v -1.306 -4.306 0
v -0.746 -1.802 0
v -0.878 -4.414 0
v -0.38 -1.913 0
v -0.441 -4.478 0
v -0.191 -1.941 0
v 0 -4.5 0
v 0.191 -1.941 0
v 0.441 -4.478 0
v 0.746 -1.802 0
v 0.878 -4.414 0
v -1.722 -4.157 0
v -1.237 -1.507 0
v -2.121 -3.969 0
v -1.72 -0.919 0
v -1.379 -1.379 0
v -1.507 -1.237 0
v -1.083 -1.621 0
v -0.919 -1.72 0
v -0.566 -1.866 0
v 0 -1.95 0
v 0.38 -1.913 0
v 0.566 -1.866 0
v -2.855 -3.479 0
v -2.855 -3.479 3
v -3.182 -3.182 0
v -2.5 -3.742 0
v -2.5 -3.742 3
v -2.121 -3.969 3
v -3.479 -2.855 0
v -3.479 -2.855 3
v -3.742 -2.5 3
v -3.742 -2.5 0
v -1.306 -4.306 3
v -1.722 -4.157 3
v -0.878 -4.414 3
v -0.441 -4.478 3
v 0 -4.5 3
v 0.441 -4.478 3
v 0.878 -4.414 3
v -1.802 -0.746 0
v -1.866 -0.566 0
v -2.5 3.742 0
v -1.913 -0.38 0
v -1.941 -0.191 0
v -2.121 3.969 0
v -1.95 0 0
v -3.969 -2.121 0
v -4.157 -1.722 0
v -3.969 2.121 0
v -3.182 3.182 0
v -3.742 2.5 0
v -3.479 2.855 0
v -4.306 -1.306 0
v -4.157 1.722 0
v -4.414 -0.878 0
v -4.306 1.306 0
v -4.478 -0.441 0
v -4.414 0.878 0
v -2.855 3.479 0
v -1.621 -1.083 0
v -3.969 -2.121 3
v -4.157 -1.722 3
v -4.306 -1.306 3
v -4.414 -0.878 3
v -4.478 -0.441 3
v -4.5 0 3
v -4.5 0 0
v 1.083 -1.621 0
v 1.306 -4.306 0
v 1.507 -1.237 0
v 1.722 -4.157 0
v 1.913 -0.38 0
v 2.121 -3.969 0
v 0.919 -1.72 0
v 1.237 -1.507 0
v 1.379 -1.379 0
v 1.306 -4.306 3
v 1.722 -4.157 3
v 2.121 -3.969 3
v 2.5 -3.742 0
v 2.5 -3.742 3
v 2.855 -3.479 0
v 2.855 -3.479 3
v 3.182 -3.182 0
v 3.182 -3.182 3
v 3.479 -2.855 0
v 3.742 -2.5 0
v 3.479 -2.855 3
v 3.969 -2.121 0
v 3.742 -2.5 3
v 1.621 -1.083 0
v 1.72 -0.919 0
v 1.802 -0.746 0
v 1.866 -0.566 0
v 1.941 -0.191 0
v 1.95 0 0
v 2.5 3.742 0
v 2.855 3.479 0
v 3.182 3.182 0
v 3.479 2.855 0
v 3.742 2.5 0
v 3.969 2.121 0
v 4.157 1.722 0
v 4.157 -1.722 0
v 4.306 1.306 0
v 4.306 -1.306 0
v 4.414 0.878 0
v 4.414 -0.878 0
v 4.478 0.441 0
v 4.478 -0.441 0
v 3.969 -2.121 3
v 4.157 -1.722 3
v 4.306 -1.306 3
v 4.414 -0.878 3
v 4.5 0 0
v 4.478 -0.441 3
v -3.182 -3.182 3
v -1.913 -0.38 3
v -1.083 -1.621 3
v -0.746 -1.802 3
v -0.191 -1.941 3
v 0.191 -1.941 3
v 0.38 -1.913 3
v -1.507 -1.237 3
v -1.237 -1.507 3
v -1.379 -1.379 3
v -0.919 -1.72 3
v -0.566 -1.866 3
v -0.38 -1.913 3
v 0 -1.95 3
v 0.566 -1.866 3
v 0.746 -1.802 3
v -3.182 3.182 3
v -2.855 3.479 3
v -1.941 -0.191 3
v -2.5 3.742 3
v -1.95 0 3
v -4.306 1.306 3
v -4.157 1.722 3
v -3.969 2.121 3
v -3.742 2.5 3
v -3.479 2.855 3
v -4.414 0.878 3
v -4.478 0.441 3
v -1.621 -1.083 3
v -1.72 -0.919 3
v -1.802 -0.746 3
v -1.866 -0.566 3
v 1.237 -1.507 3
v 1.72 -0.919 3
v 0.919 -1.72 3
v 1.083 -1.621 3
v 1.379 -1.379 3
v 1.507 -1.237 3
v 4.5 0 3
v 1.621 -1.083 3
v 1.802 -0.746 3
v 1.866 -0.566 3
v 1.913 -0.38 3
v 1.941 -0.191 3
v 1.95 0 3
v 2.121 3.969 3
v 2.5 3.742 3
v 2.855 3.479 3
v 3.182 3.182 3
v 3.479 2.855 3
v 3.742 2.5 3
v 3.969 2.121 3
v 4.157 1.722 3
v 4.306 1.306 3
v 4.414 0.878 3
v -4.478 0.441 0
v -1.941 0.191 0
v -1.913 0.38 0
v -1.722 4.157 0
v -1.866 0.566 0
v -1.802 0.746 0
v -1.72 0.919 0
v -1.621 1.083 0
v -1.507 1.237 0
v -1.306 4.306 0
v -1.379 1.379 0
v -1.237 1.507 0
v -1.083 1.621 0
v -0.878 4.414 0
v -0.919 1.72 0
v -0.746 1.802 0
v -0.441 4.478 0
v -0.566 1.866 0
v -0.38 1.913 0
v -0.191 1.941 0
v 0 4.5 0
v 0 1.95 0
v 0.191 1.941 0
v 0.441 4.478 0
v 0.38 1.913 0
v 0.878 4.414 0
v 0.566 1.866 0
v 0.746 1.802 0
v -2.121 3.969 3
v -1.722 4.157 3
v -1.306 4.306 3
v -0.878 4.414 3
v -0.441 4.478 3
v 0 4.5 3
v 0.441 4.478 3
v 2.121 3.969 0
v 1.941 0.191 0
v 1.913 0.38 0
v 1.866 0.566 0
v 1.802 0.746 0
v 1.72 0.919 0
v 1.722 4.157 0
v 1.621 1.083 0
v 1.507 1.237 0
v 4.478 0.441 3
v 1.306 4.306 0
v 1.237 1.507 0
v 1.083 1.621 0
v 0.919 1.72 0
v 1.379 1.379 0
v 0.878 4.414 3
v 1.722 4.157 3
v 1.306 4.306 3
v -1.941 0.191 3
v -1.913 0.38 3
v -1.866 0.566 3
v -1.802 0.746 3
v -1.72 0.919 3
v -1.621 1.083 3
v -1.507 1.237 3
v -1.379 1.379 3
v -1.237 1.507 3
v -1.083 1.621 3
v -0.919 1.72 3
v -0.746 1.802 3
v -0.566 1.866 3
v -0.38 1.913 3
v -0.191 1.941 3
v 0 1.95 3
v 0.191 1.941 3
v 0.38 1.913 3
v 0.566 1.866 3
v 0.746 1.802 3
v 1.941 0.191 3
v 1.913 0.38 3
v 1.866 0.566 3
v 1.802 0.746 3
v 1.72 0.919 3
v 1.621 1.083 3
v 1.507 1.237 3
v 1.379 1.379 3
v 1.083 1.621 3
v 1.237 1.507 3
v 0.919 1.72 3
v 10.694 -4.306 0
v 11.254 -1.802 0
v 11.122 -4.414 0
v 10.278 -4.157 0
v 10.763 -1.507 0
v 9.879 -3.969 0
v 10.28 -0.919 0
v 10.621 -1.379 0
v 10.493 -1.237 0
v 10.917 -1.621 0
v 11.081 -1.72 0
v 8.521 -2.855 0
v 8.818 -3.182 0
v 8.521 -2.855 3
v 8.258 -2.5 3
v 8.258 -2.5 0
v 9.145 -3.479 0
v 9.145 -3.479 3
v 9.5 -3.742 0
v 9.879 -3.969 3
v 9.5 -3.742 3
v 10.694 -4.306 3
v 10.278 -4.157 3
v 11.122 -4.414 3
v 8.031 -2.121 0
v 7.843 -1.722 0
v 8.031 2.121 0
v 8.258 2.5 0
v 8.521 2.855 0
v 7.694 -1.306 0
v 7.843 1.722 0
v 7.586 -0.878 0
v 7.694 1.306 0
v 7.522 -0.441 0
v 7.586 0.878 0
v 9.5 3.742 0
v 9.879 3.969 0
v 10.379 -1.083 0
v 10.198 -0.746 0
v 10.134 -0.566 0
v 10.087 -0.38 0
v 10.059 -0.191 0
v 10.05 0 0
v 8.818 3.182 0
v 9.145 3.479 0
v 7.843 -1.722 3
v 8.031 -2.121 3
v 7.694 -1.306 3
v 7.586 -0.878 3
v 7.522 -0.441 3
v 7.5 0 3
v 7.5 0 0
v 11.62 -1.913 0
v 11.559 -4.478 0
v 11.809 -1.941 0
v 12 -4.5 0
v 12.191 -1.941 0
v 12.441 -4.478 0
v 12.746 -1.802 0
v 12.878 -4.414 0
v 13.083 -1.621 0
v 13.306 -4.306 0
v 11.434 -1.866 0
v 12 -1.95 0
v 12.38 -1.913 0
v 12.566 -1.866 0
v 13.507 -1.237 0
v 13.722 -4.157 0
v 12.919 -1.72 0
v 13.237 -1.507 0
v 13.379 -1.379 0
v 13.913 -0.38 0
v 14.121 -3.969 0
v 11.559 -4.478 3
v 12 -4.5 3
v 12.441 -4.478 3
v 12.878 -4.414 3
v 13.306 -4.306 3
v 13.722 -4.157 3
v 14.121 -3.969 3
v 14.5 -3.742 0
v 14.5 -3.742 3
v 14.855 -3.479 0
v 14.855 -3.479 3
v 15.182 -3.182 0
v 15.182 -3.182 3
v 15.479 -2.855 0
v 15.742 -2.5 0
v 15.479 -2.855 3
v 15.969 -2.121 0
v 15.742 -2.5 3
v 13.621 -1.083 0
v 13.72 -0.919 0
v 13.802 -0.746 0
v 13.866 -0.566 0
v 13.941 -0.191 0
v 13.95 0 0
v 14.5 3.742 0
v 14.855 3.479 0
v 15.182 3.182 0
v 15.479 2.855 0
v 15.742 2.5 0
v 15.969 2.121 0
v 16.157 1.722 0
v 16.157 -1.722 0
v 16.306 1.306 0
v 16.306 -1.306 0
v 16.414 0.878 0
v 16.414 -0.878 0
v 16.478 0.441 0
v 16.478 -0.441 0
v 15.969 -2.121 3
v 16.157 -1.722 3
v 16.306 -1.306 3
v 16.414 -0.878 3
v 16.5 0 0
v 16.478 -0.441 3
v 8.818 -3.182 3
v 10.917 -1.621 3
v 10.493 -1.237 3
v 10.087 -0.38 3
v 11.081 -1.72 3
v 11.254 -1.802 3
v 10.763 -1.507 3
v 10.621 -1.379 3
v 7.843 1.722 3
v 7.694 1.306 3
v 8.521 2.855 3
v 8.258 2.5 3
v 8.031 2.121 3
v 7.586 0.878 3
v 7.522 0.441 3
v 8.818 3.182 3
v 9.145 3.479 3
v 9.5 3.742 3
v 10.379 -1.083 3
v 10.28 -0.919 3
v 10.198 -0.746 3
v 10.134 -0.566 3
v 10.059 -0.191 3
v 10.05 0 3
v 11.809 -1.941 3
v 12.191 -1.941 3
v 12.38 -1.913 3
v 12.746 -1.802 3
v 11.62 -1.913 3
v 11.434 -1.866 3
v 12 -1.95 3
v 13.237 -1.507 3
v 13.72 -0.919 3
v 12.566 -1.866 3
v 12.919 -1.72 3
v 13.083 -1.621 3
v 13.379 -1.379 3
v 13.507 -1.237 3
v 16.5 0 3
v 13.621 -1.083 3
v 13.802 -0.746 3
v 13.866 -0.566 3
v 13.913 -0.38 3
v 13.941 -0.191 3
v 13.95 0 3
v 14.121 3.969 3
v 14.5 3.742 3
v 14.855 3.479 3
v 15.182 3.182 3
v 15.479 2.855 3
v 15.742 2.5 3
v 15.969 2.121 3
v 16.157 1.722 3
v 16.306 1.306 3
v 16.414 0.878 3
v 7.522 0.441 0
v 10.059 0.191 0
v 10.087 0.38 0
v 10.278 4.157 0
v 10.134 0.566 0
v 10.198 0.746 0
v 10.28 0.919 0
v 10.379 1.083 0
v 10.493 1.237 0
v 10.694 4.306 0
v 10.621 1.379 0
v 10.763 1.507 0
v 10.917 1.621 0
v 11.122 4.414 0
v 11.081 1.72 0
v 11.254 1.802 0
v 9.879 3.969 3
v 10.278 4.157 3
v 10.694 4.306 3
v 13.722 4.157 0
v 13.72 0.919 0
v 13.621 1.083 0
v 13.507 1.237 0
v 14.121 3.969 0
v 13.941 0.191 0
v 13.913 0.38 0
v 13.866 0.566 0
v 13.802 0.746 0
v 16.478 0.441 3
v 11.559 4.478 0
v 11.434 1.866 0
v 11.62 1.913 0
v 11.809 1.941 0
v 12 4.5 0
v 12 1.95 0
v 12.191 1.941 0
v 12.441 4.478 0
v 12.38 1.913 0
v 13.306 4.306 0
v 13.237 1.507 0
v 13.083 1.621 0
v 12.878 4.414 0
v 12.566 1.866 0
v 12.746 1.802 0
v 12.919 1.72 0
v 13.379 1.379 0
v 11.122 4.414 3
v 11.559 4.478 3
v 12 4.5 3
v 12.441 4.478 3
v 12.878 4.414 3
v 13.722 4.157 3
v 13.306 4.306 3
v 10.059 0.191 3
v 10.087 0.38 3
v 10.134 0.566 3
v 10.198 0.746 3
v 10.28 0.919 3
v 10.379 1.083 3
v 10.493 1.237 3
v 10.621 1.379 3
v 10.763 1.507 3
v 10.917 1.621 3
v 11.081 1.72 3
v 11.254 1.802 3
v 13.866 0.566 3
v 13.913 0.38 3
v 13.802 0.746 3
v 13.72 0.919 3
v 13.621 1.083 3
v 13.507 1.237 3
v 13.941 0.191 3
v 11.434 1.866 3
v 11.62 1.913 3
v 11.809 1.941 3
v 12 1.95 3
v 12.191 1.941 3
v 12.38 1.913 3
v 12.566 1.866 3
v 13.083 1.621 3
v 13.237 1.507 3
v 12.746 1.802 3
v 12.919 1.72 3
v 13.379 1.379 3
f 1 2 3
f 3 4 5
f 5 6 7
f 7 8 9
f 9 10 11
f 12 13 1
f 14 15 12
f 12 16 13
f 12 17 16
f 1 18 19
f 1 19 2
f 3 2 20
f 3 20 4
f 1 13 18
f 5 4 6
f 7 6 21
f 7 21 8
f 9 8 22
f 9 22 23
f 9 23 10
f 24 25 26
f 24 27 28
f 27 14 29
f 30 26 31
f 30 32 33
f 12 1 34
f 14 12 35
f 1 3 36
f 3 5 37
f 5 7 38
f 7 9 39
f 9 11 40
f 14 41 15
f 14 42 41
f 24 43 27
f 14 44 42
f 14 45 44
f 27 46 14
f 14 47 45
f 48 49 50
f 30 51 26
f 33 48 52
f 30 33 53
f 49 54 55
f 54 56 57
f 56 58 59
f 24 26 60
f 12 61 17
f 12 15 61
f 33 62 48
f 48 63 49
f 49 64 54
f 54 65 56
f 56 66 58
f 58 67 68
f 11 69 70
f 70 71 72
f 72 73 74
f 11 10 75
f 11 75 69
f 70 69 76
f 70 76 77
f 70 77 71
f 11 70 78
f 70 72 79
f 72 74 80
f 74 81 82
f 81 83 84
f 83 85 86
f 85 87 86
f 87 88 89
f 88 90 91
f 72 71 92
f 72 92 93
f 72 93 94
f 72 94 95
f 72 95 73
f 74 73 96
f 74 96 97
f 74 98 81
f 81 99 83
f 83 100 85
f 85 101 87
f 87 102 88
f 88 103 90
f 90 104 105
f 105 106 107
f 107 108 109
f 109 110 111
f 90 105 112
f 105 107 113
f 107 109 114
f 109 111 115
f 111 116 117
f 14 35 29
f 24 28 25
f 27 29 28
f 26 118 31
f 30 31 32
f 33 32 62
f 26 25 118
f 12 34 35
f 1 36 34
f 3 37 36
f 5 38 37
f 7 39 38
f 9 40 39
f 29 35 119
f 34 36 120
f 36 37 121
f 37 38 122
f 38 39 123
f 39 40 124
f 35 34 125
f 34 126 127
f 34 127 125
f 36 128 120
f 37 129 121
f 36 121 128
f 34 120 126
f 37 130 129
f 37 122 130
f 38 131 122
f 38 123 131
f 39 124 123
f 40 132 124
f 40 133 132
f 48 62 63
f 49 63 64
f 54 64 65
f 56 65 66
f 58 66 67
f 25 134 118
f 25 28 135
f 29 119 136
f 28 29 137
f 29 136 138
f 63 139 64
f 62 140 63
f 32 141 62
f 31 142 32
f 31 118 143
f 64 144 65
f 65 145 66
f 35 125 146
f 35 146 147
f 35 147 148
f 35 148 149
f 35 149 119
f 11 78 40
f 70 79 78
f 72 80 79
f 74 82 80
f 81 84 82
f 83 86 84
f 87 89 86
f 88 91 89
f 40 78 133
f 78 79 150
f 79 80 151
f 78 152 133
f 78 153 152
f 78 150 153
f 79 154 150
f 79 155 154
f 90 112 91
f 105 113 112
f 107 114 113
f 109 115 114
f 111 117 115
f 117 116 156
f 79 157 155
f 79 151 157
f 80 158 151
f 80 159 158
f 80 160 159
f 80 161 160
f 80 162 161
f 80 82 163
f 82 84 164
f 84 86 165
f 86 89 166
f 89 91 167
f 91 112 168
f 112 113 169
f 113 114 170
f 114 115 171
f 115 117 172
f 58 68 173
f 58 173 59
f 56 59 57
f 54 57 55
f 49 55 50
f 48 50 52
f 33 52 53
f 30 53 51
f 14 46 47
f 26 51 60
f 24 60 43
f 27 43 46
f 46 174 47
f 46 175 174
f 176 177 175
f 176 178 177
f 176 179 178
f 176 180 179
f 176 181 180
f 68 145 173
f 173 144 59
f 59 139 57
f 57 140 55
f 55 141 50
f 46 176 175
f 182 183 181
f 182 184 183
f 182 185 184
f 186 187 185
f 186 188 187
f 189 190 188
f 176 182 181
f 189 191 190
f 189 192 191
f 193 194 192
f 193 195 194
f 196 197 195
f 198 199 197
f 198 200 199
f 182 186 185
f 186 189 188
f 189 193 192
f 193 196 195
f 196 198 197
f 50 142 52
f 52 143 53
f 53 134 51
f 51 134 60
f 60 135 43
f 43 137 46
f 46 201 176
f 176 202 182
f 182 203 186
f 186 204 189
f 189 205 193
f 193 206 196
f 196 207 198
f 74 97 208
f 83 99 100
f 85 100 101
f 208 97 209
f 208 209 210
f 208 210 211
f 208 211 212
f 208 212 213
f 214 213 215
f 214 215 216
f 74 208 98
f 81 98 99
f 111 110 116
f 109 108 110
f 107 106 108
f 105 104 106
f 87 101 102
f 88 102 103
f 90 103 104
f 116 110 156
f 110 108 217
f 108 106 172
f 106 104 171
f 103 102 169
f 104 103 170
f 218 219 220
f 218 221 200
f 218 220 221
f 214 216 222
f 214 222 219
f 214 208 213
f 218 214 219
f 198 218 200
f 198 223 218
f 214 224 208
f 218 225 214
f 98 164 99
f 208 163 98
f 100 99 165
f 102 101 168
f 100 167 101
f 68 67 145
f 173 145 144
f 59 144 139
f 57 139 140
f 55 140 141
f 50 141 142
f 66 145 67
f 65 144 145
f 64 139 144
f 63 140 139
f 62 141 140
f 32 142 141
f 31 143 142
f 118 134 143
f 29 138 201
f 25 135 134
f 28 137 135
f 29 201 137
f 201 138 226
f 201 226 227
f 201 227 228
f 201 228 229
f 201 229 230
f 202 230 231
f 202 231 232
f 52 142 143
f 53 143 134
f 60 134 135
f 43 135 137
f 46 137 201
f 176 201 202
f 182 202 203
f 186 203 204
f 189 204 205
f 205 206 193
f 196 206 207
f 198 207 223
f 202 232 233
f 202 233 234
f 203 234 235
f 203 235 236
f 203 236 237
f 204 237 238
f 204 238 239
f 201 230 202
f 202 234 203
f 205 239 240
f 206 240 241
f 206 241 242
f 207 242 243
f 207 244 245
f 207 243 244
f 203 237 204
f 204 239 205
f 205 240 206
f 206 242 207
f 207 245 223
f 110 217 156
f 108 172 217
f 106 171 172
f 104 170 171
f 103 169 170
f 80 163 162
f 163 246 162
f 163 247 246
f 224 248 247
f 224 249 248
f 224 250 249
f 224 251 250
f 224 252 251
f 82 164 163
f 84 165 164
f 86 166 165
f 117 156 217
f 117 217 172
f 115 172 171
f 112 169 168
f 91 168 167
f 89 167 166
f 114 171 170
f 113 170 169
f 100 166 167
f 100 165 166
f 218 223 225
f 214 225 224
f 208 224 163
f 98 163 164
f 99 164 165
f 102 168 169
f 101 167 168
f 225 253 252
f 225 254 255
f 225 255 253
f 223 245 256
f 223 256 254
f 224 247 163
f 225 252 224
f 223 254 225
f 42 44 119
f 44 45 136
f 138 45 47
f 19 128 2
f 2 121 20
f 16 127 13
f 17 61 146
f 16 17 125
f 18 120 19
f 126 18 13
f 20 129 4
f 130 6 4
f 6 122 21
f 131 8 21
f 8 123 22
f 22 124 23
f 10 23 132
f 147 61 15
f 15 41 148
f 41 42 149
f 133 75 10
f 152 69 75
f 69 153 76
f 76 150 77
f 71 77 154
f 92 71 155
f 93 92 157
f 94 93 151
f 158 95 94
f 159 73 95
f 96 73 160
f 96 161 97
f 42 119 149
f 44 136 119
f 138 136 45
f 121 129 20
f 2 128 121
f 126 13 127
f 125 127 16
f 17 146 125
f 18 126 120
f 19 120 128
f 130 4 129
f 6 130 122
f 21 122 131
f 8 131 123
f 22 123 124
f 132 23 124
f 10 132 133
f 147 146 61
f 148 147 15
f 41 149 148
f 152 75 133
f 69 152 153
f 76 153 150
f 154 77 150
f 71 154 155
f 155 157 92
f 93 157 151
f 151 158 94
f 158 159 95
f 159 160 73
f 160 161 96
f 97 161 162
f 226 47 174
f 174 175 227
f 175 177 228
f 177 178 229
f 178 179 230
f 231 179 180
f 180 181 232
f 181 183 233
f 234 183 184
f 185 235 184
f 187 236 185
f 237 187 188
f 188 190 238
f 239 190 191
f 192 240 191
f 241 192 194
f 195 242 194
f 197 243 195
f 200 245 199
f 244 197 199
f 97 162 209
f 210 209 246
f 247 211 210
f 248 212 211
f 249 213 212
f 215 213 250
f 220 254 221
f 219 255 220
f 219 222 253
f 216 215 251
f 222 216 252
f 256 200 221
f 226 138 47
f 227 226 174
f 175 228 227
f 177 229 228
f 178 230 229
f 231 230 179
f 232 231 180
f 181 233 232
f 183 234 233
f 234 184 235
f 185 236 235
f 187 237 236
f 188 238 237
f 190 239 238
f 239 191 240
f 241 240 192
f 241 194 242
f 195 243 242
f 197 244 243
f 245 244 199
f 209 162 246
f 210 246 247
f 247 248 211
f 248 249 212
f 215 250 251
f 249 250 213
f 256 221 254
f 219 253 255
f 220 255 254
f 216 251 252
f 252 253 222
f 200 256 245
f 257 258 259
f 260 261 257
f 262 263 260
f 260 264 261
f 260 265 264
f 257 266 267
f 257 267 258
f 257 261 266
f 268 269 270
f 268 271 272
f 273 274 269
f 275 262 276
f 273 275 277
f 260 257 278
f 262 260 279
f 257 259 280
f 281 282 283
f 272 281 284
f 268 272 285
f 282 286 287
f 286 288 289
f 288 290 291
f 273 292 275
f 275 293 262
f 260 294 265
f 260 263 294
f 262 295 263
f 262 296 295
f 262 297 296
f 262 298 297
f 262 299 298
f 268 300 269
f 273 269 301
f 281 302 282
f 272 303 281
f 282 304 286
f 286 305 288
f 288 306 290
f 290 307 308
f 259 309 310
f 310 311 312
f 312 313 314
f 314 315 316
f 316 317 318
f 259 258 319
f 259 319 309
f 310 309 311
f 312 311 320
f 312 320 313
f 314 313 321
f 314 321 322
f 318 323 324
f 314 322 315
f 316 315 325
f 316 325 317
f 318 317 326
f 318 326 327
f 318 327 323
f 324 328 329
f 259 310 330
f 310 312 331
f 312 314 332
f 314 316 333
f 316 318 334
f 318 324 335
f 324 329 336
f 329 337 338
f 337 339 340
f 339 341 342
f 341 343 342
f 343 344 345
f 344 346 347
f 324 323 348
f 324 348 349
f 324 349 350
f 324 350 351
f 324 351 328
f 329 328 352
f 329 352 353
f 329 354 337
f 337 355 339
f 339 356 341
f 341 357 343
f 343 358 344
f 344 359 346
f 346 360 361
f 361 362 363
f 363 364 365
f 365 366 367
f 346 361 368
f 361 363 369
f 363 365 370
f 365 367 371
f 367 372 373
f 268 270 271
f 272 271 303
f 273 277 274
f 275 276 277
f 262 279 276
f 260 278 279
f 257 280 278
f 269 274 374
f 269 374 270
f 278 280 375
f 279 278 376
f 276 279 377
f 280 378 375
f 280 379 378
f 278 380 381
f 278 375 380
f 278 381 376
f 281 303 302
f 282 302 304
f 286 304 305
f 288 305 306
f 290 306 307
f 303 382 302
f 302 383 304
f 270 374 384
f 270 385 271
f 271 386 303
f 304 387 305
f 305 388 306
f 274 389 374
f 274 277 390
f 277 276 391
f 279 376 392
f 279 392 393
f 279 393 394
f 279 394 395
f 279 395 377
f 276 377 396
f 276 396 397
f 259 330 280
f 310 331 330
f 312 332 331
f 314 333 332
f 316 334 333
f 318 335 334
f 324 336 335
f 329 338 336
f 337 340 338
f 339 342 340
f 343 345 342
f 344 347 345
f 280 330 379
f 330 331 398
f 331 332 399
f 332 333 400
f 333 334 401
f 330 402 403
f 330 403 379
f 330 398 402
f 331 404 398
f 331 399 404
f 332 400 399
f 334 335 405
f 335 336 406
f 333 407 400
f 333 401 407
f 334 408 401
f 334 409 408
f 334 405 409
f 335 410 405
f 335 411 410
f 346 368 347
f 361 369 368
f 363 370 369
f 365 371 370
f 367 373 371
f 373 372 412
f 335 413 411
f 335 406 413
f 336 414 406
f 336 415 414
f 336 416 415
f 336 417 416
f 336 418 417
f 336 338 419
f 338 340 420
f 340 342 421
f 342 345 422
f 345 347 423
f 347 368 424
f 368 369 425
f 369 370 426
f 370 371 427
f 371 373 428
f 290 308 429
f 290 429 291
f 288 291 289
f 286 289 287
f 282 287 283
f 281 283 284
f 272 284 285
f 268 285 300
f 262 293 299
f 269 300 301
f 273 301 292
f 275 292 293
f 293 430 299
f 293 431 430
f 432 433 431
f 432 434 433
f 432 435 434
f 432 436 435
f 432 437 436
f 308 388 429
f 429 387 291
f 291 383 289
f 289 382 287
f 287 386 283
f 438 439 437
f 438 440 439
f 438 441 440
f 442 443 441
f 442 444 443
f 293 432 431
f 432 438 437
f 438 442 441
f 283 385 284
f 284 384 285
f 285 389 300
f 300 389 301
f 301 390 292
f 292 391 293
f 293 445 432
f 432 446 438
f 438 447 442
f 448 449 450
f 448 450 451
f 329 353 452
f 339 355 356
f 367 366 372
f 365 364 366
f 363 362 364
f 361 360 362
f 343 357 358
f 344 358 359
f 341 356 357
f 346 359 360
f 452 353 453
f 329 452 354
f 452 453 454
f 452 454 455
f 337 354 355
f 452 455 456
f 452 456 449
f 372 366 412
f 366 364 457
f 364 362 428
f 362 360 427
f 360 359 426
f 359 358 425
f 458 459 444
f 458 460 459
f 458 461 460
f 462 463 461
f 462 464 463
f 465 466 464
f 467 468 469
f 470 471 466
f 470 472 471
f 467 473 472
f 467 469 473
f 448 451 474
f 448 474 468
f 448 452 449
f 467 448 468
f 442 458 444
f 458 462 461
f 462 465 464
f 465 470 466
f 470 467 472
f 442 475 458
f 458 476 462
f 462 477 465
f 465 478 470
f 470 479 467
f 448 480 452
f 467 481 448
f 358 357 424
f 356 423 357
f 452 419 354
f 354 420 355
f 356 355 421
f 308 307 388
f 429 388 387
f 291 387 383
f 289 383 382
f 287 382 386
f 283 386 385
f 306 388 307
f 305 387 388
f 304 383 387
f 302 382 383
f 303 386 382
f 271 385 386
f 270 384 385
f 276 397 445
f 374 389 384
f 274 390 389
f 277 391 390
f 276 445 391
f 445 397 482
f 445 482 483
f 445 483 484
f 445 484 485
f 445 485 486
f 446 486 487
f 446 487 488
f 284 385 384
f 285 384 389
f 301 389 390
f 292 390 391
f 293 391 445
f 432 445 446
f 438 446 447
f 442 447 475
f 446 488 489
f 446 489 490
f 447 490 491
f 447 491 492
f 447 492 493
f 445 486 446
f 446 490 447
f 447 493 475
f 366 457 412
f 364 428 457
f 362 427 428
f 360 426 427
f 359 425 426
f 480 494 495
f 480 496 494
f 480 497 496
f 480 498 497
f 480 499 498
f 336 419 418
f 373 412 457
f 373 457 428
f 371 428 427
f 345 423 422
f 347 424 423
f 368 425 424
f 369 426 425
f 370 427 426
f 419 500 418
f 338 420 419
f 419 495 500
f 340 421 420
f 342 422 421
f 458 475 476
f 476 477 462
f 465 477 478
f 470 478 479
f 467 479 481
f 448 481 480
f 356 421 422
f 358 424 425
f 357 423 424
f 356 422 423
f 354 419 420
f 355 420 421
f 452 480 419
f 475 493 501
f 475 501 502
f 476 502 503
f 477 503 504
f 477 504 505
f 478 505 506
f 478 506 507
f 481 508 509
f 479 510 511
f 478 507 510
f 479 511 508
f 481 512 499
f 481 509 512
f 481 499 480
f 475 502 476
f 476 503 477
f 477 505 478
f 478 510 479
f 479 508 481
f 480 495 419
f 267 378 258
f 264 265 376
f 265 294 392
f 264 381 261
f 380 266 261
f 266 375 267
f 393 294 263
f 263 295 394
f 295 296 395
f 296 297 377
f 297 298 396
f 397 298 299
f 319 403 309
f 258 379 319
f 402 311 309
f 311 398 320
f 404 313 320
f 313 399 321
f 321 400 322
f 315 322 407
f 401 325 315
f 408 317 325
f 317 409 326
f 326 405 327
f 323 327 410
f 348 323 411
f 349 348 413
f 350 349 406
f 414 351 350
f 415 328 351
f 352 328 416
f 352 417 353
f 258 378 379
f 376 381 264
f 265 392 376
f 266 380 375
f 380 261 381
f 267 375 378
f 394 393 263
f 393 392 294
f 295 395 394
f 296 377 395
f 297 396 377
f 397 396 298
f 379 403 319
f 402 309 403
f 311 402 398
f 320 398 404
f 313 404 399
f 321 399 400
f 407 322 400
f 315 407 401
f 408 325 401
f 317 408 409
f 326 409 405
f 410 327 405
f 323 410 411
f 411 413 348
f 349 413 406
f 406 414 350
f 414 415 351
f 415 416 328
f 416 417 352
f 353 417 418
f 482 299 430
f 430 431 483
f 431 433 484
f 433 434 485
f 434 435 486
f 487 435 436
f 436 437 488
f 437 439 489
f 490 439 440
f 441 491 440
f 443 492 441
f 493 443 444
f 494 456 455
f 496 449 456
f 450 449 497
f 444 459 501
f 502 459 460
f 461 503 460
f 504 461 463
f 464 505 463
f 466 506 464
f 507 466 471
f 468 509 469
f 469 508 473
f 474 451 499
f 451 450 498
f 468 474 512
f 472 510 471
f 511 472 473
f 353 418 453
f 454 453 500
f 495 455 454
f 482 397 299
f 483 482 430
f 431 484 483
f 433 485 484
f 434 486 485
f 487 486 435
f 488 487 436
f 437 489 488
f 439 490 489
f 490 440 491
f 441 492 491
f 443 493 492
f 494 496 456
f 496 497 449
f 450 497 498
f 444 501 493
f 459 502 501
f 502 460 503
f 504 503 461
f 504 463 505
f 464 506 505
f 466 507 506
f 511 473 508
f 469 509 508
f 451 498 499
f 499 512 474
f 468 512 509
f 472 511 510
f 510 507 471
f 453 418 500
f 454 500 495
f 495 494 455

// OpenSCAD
// Toccata stage-0 C01d - 봉 끝 칼라 (2개) (generated by make_stage0.py; print orientation, z = build direction)
$fn = 64;
difference(){
translate([0.0000,0.0000,0.0000]) cylinder(h=3.0000, d=9.0000, $fn=64);
translate([0.0000,0.0000,-1.0000]) cylinder(h=5.0000, d=3.9000, $fn=64);
}
difference(){
translate([12.0000,0.0000,0.0000]) cylinder(h=3.0000, d=9.0000, $fn=64);
translate([12.0000,0.0000,-1.0000]) cylinder(h=5.0000, d=3.9000, $fn=64);
}
